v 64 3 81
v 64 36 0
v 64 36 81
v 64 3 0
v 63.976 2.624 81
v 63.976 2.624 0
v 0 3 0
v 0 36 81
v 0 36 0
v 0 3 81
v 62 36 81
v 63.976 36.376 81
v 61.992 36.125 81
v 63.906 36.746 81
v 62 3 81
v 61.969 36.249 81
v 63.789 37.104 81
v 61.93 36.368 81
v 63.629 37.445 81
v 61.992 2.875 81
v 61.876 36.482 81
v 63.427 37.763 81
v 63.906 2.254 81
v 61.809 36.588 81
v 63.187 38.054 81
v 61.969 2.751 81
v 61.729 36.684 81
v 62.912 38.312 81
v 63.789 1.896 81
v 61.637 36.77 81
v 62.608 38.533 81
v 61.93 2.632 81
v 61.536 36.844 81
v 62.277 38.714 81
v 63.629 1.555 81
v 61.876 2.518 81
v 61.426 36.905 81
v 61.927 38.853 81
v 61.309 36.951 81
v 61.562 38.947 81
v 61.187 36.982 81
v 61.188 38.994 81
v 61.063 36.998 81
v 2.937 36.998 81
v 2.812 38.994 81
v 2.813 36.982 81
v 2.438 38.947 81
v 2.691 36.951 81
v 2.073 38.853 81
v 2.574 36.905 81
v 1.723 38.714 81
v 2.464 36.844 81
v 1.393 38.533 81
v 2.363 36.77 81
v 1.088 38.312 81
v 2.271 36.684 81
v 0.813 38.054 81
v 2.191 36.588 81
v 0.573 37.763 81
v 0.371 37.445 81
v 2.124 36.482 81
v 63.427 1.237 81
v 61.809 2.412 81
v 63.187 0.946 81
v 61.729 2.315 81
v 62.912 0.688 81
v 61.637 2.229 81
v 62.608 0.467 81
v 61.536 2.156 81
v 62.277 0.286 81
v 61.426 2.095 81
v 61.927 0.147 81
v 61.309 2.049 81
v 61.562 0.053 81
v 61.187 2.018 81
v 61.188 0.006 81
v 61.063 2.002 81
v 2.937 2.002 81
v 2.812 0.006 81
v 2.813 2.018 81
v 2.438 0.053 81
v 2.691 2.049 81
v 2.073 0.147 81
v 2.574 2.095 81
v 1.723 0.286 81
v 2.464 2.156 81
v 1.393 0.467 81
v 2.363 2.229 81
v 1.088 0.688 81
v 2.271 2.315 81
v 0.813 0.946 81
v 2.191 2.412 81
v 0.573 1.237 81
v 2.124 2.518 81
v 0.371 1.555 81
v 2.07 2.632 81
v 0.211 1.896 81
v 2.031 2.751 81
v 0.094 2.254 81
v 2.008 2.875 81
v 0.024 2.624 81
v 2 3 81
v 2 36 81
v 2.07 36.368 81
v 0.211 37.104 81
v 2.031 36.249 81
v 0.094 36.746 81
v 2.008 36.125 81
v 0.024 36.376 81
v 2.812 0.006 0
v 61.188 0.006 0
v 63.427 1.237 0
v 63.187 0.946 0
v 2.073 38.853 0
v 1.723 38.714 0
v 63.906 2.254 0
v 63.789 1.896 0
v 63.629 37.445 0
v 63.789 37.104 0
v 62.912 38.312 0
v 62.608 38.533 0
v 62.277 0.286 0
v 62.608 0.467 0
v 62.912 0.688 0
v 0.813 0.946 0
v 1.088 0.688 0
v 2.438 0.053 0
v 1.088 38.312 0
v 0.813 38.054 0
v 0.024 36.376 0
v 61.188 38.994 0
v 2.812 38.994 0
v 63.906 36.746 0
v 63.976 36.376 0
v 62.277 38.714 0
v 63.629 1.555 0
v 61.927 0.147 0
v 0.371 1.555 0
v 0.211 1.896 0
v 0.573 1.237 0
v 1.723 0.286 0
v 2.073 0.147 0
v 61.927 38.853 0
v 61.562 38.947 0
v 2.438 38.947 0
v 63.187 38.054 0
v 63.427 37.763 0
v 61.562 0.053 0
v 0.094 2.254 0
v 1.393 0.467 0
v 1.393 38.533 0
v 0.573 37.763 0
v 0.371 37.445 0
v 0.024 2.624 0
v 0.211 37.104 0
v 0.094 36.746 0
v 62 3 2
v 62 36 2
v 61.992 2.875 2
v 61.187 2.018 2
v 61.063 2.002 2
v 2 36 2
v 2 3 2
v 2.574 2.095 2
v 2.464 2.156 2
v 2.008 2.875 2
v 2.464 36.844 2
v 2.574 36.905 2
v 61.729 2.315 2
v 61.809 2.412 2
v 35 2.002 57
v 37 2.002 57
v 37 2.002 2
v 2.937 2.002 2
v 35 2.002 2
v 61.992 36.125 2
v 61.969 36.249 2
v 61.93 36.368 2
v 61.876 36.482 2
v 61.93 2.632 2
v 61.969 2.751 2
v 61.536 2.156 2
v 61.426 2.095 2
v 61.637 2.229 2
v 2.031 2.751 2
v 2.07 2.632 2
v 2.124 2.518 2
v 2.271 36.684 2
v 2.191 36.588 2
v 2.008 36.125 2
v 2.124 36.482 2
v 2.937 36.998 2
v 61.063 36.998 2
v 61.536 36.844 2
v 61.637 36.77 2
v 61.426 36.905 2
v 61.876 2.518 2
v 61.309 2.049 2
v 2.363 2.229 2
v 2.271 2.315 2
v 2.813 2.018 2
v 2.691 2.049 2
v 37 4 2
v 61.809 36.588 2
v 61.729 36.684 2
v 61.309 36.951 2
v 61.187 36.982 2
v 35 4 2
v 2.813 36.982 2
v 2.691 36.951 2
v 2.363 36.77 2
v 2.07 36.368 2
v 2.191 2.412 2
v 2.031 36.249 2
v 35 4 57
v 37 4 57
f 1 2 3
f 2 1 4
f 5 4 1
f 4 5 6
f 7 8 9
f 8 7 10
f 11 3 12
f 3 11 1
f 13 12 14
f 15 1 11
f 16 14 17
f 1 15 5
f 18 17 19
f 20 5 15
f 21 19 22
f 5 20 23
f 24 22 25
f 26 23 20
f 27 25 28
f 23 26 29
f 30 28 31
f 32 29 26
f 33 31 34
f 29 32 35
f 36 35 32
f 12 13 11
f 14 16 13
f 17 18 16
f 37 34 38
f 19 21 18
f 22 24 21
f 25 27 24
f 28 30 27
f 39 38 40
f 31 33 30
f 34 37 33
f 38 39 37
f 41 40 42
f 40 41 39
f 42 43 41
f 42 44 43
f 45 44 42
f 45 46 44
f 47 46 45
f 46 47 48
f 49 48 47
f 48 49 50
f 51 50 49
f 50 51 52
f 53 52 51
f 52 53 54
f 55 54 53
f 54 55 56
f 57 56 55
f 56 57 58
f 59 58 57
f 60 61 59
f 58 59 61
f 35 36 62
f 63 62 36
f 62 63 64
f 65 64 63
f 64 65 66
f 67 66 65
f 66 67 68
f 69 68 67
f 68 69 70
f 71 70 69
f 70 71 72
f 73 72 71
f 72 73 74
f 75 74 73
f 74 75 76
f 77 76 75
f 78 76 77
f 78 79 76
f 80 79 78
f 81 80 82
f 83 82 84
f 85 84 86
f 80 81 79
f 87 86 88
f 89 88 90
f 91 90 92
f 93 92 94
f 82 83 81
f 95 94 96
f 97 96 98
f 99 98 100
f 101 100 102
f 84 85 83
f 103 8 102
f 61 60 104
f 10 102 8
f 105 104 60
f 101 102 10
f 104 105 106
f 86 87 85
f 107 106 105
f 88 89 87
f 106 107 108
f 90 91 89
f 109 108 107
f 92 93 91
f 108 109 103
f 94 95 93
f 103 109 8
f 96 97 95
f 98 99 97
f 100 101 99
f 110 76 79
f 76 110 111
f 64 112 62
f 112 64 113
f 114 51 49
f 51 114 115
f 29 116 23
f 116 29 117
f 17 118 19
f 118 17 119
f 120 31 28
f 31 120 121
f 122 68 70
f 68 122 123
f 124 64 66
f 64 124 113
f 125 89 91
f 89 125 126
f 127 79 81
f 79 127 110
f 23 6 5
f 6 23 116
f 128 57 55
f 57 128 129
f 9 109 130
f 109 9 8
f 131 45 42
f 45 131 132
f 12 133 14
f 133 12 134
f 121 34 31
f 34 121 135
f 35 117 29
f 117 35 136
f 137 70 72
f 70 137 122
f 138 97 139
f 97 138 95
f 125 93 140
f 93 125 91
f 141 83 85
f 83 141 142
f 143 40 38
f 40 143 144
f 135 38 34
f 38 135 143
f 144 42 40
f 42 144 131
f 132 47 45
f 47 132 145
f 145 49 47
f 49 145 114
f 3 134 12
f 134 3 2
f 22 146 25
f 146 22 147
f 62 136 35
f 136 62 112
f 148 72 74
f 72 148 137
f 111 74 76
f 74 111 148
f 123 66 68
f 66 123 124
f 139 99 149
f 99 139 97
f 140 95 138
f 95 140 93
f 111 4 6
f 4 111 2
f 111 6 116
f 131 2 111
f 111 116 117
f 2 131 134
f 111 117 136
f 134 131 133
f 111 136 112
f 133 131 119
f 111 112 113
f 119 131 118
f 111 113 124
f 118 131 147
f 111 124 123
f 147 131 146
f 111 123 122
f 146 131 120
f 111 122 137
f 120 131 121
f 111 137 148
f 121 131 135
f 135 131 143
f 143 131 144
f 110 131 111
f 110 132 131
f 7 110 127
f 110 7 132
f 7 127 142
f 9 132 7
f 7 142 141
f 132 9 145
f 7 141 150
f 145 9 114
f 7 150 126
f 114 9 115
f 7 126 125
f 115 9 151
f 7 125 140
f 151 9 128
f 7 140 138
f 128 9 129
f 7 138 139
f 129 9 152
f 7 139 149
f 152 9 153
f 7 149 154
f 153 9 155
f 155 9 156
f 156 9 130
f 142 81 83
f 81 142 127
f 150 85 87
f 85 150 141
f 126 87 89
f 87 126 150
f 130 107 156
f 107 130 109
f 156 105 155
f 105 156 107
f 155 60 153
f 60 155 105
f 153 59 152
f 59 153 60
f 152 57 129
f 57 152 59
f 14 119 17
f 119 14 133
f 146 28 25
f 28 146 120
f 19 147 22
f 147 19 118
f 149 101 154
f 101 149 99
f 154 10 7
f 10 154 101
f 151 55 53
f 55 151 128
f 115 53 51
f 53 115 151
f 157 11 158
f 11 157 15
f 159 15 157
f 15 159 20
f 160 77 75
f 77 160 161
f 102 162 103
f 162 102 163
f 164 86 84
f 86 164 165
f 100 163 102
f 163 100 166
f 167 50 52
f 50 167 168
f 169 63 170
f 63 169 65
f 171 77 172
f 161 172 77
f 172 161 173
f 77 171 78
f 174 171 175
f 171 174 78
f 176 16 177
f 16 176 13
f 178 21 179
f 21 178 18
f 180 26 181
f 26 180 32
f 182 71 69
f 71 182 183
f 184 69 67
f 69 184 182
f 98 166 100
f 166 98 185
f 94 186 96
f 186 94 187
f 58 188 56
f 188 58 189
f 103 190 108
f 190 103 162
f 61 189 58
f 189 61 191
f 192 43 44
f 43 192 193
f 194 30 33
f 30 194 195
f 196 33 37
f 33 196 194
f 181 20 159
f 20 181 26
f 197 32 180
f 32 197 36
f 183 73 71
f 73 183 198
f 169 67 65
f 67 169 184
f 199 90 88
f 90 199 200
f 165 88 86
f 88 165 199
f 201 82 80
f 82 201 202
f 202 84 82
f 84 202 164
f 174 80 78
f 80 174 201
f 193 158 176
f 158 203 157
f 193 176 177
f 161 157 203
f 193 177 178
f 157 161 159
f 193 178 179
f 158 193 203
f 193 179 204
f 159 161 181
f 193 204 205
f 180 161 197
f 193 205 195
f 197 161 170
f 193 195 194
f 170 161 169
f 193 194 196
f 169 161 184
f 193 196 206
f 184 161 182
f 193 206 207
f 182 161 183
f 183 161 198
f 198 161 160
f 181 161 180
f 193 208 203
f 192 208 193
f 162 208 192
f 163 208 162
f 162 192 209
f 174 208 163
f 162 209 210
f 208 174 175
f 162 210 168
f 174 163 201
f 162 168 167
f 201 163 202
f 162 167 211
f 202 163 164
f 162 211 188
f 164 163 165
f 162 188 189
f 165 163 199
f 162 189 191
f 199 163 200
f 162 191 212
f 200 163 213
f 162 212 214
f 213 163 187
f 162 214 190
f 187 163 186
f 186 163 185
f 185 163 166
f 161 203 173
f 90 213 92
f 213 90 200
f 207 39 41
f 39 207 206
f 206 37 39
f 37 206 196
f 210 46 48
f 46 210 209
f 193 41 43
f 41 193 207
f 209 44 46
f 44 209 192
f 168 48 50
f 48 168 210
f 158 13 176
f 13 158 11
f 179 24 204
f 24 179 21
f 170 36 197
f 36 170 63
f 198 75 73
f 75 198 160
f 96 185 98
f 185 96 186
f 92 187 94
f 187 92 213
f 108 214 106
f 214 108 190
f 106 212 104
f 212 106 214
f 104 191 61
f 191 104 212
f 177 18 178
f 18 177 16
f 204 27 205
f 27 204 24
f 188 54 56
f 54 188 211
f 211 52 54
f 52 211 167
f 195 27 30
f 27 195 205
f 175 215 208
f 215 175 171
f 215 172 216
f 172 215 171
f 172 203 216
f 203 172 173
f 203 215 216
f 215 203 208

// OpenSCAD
// Simple Cover for the Iridium Beacon with Radio Board

$fn=50; // fragments
wall = 2.0; // wall thickness
internal_width = 60.0; // internal width (X) of the cover
internal_depth = 35.0; // internal depth (Y) of the cover
internal_height = 78.0; // internal height (Z) of the cover
lid_insert = 1.0; // extra height for the lid insert

internal_corner_radius = 1.0; // radius of the internal corner cylinder

support_x_offset = 4.0; // x offset of the support w.r.t. the X center of the void
support_width = 2.0; // x width of the support
support_depth = 2.0; // y depth of the support
support_height = 55.0; // z height of the support

height = internal_height + wall + lid_insert; // cover external height (Z)
width = internal_width + (2 * wall); // cover external width (X)
depth = internal_depth + (2 * wall); // cover external depth (Y)

external_corner_radius = internal_corner_radius + wall; // external corner radius

module cover()
{
    translate([external_corner_radius, external_corner_radius, 0])
        minkowski() {
            cube([(width - (2 * external_corner_radius)), (depth - (2 * external_corner_radius)), (height / 2)]);
            cylinder(h=(height / 2), r=external_corner_radius);
        }
}

module void()
// Void will be higher than required to avoid zero thickness skin across opening
{
    translate([external_corner_radius, external_corner_radius, wall])
        minkowski() {
            cube([(internal_width - (2 * internal_corner_radius)), (internal_depth - (2 * internal_corner_radius)), (height / 2)]);
            cylinder(h=(height / 2), r=internal_corner_radius);
        }
}

module support()
{
    translate([((width / 2) + support_x_offset - (support_width / 2)),wall, 0]) {
        cube([support_width, support_depth, (support_height + wall)]);
    }
}

module finished_cover()
{
    union() {
        difference() {
            cover();
            void();
        }
        support();
    }
}

finished_cover();
